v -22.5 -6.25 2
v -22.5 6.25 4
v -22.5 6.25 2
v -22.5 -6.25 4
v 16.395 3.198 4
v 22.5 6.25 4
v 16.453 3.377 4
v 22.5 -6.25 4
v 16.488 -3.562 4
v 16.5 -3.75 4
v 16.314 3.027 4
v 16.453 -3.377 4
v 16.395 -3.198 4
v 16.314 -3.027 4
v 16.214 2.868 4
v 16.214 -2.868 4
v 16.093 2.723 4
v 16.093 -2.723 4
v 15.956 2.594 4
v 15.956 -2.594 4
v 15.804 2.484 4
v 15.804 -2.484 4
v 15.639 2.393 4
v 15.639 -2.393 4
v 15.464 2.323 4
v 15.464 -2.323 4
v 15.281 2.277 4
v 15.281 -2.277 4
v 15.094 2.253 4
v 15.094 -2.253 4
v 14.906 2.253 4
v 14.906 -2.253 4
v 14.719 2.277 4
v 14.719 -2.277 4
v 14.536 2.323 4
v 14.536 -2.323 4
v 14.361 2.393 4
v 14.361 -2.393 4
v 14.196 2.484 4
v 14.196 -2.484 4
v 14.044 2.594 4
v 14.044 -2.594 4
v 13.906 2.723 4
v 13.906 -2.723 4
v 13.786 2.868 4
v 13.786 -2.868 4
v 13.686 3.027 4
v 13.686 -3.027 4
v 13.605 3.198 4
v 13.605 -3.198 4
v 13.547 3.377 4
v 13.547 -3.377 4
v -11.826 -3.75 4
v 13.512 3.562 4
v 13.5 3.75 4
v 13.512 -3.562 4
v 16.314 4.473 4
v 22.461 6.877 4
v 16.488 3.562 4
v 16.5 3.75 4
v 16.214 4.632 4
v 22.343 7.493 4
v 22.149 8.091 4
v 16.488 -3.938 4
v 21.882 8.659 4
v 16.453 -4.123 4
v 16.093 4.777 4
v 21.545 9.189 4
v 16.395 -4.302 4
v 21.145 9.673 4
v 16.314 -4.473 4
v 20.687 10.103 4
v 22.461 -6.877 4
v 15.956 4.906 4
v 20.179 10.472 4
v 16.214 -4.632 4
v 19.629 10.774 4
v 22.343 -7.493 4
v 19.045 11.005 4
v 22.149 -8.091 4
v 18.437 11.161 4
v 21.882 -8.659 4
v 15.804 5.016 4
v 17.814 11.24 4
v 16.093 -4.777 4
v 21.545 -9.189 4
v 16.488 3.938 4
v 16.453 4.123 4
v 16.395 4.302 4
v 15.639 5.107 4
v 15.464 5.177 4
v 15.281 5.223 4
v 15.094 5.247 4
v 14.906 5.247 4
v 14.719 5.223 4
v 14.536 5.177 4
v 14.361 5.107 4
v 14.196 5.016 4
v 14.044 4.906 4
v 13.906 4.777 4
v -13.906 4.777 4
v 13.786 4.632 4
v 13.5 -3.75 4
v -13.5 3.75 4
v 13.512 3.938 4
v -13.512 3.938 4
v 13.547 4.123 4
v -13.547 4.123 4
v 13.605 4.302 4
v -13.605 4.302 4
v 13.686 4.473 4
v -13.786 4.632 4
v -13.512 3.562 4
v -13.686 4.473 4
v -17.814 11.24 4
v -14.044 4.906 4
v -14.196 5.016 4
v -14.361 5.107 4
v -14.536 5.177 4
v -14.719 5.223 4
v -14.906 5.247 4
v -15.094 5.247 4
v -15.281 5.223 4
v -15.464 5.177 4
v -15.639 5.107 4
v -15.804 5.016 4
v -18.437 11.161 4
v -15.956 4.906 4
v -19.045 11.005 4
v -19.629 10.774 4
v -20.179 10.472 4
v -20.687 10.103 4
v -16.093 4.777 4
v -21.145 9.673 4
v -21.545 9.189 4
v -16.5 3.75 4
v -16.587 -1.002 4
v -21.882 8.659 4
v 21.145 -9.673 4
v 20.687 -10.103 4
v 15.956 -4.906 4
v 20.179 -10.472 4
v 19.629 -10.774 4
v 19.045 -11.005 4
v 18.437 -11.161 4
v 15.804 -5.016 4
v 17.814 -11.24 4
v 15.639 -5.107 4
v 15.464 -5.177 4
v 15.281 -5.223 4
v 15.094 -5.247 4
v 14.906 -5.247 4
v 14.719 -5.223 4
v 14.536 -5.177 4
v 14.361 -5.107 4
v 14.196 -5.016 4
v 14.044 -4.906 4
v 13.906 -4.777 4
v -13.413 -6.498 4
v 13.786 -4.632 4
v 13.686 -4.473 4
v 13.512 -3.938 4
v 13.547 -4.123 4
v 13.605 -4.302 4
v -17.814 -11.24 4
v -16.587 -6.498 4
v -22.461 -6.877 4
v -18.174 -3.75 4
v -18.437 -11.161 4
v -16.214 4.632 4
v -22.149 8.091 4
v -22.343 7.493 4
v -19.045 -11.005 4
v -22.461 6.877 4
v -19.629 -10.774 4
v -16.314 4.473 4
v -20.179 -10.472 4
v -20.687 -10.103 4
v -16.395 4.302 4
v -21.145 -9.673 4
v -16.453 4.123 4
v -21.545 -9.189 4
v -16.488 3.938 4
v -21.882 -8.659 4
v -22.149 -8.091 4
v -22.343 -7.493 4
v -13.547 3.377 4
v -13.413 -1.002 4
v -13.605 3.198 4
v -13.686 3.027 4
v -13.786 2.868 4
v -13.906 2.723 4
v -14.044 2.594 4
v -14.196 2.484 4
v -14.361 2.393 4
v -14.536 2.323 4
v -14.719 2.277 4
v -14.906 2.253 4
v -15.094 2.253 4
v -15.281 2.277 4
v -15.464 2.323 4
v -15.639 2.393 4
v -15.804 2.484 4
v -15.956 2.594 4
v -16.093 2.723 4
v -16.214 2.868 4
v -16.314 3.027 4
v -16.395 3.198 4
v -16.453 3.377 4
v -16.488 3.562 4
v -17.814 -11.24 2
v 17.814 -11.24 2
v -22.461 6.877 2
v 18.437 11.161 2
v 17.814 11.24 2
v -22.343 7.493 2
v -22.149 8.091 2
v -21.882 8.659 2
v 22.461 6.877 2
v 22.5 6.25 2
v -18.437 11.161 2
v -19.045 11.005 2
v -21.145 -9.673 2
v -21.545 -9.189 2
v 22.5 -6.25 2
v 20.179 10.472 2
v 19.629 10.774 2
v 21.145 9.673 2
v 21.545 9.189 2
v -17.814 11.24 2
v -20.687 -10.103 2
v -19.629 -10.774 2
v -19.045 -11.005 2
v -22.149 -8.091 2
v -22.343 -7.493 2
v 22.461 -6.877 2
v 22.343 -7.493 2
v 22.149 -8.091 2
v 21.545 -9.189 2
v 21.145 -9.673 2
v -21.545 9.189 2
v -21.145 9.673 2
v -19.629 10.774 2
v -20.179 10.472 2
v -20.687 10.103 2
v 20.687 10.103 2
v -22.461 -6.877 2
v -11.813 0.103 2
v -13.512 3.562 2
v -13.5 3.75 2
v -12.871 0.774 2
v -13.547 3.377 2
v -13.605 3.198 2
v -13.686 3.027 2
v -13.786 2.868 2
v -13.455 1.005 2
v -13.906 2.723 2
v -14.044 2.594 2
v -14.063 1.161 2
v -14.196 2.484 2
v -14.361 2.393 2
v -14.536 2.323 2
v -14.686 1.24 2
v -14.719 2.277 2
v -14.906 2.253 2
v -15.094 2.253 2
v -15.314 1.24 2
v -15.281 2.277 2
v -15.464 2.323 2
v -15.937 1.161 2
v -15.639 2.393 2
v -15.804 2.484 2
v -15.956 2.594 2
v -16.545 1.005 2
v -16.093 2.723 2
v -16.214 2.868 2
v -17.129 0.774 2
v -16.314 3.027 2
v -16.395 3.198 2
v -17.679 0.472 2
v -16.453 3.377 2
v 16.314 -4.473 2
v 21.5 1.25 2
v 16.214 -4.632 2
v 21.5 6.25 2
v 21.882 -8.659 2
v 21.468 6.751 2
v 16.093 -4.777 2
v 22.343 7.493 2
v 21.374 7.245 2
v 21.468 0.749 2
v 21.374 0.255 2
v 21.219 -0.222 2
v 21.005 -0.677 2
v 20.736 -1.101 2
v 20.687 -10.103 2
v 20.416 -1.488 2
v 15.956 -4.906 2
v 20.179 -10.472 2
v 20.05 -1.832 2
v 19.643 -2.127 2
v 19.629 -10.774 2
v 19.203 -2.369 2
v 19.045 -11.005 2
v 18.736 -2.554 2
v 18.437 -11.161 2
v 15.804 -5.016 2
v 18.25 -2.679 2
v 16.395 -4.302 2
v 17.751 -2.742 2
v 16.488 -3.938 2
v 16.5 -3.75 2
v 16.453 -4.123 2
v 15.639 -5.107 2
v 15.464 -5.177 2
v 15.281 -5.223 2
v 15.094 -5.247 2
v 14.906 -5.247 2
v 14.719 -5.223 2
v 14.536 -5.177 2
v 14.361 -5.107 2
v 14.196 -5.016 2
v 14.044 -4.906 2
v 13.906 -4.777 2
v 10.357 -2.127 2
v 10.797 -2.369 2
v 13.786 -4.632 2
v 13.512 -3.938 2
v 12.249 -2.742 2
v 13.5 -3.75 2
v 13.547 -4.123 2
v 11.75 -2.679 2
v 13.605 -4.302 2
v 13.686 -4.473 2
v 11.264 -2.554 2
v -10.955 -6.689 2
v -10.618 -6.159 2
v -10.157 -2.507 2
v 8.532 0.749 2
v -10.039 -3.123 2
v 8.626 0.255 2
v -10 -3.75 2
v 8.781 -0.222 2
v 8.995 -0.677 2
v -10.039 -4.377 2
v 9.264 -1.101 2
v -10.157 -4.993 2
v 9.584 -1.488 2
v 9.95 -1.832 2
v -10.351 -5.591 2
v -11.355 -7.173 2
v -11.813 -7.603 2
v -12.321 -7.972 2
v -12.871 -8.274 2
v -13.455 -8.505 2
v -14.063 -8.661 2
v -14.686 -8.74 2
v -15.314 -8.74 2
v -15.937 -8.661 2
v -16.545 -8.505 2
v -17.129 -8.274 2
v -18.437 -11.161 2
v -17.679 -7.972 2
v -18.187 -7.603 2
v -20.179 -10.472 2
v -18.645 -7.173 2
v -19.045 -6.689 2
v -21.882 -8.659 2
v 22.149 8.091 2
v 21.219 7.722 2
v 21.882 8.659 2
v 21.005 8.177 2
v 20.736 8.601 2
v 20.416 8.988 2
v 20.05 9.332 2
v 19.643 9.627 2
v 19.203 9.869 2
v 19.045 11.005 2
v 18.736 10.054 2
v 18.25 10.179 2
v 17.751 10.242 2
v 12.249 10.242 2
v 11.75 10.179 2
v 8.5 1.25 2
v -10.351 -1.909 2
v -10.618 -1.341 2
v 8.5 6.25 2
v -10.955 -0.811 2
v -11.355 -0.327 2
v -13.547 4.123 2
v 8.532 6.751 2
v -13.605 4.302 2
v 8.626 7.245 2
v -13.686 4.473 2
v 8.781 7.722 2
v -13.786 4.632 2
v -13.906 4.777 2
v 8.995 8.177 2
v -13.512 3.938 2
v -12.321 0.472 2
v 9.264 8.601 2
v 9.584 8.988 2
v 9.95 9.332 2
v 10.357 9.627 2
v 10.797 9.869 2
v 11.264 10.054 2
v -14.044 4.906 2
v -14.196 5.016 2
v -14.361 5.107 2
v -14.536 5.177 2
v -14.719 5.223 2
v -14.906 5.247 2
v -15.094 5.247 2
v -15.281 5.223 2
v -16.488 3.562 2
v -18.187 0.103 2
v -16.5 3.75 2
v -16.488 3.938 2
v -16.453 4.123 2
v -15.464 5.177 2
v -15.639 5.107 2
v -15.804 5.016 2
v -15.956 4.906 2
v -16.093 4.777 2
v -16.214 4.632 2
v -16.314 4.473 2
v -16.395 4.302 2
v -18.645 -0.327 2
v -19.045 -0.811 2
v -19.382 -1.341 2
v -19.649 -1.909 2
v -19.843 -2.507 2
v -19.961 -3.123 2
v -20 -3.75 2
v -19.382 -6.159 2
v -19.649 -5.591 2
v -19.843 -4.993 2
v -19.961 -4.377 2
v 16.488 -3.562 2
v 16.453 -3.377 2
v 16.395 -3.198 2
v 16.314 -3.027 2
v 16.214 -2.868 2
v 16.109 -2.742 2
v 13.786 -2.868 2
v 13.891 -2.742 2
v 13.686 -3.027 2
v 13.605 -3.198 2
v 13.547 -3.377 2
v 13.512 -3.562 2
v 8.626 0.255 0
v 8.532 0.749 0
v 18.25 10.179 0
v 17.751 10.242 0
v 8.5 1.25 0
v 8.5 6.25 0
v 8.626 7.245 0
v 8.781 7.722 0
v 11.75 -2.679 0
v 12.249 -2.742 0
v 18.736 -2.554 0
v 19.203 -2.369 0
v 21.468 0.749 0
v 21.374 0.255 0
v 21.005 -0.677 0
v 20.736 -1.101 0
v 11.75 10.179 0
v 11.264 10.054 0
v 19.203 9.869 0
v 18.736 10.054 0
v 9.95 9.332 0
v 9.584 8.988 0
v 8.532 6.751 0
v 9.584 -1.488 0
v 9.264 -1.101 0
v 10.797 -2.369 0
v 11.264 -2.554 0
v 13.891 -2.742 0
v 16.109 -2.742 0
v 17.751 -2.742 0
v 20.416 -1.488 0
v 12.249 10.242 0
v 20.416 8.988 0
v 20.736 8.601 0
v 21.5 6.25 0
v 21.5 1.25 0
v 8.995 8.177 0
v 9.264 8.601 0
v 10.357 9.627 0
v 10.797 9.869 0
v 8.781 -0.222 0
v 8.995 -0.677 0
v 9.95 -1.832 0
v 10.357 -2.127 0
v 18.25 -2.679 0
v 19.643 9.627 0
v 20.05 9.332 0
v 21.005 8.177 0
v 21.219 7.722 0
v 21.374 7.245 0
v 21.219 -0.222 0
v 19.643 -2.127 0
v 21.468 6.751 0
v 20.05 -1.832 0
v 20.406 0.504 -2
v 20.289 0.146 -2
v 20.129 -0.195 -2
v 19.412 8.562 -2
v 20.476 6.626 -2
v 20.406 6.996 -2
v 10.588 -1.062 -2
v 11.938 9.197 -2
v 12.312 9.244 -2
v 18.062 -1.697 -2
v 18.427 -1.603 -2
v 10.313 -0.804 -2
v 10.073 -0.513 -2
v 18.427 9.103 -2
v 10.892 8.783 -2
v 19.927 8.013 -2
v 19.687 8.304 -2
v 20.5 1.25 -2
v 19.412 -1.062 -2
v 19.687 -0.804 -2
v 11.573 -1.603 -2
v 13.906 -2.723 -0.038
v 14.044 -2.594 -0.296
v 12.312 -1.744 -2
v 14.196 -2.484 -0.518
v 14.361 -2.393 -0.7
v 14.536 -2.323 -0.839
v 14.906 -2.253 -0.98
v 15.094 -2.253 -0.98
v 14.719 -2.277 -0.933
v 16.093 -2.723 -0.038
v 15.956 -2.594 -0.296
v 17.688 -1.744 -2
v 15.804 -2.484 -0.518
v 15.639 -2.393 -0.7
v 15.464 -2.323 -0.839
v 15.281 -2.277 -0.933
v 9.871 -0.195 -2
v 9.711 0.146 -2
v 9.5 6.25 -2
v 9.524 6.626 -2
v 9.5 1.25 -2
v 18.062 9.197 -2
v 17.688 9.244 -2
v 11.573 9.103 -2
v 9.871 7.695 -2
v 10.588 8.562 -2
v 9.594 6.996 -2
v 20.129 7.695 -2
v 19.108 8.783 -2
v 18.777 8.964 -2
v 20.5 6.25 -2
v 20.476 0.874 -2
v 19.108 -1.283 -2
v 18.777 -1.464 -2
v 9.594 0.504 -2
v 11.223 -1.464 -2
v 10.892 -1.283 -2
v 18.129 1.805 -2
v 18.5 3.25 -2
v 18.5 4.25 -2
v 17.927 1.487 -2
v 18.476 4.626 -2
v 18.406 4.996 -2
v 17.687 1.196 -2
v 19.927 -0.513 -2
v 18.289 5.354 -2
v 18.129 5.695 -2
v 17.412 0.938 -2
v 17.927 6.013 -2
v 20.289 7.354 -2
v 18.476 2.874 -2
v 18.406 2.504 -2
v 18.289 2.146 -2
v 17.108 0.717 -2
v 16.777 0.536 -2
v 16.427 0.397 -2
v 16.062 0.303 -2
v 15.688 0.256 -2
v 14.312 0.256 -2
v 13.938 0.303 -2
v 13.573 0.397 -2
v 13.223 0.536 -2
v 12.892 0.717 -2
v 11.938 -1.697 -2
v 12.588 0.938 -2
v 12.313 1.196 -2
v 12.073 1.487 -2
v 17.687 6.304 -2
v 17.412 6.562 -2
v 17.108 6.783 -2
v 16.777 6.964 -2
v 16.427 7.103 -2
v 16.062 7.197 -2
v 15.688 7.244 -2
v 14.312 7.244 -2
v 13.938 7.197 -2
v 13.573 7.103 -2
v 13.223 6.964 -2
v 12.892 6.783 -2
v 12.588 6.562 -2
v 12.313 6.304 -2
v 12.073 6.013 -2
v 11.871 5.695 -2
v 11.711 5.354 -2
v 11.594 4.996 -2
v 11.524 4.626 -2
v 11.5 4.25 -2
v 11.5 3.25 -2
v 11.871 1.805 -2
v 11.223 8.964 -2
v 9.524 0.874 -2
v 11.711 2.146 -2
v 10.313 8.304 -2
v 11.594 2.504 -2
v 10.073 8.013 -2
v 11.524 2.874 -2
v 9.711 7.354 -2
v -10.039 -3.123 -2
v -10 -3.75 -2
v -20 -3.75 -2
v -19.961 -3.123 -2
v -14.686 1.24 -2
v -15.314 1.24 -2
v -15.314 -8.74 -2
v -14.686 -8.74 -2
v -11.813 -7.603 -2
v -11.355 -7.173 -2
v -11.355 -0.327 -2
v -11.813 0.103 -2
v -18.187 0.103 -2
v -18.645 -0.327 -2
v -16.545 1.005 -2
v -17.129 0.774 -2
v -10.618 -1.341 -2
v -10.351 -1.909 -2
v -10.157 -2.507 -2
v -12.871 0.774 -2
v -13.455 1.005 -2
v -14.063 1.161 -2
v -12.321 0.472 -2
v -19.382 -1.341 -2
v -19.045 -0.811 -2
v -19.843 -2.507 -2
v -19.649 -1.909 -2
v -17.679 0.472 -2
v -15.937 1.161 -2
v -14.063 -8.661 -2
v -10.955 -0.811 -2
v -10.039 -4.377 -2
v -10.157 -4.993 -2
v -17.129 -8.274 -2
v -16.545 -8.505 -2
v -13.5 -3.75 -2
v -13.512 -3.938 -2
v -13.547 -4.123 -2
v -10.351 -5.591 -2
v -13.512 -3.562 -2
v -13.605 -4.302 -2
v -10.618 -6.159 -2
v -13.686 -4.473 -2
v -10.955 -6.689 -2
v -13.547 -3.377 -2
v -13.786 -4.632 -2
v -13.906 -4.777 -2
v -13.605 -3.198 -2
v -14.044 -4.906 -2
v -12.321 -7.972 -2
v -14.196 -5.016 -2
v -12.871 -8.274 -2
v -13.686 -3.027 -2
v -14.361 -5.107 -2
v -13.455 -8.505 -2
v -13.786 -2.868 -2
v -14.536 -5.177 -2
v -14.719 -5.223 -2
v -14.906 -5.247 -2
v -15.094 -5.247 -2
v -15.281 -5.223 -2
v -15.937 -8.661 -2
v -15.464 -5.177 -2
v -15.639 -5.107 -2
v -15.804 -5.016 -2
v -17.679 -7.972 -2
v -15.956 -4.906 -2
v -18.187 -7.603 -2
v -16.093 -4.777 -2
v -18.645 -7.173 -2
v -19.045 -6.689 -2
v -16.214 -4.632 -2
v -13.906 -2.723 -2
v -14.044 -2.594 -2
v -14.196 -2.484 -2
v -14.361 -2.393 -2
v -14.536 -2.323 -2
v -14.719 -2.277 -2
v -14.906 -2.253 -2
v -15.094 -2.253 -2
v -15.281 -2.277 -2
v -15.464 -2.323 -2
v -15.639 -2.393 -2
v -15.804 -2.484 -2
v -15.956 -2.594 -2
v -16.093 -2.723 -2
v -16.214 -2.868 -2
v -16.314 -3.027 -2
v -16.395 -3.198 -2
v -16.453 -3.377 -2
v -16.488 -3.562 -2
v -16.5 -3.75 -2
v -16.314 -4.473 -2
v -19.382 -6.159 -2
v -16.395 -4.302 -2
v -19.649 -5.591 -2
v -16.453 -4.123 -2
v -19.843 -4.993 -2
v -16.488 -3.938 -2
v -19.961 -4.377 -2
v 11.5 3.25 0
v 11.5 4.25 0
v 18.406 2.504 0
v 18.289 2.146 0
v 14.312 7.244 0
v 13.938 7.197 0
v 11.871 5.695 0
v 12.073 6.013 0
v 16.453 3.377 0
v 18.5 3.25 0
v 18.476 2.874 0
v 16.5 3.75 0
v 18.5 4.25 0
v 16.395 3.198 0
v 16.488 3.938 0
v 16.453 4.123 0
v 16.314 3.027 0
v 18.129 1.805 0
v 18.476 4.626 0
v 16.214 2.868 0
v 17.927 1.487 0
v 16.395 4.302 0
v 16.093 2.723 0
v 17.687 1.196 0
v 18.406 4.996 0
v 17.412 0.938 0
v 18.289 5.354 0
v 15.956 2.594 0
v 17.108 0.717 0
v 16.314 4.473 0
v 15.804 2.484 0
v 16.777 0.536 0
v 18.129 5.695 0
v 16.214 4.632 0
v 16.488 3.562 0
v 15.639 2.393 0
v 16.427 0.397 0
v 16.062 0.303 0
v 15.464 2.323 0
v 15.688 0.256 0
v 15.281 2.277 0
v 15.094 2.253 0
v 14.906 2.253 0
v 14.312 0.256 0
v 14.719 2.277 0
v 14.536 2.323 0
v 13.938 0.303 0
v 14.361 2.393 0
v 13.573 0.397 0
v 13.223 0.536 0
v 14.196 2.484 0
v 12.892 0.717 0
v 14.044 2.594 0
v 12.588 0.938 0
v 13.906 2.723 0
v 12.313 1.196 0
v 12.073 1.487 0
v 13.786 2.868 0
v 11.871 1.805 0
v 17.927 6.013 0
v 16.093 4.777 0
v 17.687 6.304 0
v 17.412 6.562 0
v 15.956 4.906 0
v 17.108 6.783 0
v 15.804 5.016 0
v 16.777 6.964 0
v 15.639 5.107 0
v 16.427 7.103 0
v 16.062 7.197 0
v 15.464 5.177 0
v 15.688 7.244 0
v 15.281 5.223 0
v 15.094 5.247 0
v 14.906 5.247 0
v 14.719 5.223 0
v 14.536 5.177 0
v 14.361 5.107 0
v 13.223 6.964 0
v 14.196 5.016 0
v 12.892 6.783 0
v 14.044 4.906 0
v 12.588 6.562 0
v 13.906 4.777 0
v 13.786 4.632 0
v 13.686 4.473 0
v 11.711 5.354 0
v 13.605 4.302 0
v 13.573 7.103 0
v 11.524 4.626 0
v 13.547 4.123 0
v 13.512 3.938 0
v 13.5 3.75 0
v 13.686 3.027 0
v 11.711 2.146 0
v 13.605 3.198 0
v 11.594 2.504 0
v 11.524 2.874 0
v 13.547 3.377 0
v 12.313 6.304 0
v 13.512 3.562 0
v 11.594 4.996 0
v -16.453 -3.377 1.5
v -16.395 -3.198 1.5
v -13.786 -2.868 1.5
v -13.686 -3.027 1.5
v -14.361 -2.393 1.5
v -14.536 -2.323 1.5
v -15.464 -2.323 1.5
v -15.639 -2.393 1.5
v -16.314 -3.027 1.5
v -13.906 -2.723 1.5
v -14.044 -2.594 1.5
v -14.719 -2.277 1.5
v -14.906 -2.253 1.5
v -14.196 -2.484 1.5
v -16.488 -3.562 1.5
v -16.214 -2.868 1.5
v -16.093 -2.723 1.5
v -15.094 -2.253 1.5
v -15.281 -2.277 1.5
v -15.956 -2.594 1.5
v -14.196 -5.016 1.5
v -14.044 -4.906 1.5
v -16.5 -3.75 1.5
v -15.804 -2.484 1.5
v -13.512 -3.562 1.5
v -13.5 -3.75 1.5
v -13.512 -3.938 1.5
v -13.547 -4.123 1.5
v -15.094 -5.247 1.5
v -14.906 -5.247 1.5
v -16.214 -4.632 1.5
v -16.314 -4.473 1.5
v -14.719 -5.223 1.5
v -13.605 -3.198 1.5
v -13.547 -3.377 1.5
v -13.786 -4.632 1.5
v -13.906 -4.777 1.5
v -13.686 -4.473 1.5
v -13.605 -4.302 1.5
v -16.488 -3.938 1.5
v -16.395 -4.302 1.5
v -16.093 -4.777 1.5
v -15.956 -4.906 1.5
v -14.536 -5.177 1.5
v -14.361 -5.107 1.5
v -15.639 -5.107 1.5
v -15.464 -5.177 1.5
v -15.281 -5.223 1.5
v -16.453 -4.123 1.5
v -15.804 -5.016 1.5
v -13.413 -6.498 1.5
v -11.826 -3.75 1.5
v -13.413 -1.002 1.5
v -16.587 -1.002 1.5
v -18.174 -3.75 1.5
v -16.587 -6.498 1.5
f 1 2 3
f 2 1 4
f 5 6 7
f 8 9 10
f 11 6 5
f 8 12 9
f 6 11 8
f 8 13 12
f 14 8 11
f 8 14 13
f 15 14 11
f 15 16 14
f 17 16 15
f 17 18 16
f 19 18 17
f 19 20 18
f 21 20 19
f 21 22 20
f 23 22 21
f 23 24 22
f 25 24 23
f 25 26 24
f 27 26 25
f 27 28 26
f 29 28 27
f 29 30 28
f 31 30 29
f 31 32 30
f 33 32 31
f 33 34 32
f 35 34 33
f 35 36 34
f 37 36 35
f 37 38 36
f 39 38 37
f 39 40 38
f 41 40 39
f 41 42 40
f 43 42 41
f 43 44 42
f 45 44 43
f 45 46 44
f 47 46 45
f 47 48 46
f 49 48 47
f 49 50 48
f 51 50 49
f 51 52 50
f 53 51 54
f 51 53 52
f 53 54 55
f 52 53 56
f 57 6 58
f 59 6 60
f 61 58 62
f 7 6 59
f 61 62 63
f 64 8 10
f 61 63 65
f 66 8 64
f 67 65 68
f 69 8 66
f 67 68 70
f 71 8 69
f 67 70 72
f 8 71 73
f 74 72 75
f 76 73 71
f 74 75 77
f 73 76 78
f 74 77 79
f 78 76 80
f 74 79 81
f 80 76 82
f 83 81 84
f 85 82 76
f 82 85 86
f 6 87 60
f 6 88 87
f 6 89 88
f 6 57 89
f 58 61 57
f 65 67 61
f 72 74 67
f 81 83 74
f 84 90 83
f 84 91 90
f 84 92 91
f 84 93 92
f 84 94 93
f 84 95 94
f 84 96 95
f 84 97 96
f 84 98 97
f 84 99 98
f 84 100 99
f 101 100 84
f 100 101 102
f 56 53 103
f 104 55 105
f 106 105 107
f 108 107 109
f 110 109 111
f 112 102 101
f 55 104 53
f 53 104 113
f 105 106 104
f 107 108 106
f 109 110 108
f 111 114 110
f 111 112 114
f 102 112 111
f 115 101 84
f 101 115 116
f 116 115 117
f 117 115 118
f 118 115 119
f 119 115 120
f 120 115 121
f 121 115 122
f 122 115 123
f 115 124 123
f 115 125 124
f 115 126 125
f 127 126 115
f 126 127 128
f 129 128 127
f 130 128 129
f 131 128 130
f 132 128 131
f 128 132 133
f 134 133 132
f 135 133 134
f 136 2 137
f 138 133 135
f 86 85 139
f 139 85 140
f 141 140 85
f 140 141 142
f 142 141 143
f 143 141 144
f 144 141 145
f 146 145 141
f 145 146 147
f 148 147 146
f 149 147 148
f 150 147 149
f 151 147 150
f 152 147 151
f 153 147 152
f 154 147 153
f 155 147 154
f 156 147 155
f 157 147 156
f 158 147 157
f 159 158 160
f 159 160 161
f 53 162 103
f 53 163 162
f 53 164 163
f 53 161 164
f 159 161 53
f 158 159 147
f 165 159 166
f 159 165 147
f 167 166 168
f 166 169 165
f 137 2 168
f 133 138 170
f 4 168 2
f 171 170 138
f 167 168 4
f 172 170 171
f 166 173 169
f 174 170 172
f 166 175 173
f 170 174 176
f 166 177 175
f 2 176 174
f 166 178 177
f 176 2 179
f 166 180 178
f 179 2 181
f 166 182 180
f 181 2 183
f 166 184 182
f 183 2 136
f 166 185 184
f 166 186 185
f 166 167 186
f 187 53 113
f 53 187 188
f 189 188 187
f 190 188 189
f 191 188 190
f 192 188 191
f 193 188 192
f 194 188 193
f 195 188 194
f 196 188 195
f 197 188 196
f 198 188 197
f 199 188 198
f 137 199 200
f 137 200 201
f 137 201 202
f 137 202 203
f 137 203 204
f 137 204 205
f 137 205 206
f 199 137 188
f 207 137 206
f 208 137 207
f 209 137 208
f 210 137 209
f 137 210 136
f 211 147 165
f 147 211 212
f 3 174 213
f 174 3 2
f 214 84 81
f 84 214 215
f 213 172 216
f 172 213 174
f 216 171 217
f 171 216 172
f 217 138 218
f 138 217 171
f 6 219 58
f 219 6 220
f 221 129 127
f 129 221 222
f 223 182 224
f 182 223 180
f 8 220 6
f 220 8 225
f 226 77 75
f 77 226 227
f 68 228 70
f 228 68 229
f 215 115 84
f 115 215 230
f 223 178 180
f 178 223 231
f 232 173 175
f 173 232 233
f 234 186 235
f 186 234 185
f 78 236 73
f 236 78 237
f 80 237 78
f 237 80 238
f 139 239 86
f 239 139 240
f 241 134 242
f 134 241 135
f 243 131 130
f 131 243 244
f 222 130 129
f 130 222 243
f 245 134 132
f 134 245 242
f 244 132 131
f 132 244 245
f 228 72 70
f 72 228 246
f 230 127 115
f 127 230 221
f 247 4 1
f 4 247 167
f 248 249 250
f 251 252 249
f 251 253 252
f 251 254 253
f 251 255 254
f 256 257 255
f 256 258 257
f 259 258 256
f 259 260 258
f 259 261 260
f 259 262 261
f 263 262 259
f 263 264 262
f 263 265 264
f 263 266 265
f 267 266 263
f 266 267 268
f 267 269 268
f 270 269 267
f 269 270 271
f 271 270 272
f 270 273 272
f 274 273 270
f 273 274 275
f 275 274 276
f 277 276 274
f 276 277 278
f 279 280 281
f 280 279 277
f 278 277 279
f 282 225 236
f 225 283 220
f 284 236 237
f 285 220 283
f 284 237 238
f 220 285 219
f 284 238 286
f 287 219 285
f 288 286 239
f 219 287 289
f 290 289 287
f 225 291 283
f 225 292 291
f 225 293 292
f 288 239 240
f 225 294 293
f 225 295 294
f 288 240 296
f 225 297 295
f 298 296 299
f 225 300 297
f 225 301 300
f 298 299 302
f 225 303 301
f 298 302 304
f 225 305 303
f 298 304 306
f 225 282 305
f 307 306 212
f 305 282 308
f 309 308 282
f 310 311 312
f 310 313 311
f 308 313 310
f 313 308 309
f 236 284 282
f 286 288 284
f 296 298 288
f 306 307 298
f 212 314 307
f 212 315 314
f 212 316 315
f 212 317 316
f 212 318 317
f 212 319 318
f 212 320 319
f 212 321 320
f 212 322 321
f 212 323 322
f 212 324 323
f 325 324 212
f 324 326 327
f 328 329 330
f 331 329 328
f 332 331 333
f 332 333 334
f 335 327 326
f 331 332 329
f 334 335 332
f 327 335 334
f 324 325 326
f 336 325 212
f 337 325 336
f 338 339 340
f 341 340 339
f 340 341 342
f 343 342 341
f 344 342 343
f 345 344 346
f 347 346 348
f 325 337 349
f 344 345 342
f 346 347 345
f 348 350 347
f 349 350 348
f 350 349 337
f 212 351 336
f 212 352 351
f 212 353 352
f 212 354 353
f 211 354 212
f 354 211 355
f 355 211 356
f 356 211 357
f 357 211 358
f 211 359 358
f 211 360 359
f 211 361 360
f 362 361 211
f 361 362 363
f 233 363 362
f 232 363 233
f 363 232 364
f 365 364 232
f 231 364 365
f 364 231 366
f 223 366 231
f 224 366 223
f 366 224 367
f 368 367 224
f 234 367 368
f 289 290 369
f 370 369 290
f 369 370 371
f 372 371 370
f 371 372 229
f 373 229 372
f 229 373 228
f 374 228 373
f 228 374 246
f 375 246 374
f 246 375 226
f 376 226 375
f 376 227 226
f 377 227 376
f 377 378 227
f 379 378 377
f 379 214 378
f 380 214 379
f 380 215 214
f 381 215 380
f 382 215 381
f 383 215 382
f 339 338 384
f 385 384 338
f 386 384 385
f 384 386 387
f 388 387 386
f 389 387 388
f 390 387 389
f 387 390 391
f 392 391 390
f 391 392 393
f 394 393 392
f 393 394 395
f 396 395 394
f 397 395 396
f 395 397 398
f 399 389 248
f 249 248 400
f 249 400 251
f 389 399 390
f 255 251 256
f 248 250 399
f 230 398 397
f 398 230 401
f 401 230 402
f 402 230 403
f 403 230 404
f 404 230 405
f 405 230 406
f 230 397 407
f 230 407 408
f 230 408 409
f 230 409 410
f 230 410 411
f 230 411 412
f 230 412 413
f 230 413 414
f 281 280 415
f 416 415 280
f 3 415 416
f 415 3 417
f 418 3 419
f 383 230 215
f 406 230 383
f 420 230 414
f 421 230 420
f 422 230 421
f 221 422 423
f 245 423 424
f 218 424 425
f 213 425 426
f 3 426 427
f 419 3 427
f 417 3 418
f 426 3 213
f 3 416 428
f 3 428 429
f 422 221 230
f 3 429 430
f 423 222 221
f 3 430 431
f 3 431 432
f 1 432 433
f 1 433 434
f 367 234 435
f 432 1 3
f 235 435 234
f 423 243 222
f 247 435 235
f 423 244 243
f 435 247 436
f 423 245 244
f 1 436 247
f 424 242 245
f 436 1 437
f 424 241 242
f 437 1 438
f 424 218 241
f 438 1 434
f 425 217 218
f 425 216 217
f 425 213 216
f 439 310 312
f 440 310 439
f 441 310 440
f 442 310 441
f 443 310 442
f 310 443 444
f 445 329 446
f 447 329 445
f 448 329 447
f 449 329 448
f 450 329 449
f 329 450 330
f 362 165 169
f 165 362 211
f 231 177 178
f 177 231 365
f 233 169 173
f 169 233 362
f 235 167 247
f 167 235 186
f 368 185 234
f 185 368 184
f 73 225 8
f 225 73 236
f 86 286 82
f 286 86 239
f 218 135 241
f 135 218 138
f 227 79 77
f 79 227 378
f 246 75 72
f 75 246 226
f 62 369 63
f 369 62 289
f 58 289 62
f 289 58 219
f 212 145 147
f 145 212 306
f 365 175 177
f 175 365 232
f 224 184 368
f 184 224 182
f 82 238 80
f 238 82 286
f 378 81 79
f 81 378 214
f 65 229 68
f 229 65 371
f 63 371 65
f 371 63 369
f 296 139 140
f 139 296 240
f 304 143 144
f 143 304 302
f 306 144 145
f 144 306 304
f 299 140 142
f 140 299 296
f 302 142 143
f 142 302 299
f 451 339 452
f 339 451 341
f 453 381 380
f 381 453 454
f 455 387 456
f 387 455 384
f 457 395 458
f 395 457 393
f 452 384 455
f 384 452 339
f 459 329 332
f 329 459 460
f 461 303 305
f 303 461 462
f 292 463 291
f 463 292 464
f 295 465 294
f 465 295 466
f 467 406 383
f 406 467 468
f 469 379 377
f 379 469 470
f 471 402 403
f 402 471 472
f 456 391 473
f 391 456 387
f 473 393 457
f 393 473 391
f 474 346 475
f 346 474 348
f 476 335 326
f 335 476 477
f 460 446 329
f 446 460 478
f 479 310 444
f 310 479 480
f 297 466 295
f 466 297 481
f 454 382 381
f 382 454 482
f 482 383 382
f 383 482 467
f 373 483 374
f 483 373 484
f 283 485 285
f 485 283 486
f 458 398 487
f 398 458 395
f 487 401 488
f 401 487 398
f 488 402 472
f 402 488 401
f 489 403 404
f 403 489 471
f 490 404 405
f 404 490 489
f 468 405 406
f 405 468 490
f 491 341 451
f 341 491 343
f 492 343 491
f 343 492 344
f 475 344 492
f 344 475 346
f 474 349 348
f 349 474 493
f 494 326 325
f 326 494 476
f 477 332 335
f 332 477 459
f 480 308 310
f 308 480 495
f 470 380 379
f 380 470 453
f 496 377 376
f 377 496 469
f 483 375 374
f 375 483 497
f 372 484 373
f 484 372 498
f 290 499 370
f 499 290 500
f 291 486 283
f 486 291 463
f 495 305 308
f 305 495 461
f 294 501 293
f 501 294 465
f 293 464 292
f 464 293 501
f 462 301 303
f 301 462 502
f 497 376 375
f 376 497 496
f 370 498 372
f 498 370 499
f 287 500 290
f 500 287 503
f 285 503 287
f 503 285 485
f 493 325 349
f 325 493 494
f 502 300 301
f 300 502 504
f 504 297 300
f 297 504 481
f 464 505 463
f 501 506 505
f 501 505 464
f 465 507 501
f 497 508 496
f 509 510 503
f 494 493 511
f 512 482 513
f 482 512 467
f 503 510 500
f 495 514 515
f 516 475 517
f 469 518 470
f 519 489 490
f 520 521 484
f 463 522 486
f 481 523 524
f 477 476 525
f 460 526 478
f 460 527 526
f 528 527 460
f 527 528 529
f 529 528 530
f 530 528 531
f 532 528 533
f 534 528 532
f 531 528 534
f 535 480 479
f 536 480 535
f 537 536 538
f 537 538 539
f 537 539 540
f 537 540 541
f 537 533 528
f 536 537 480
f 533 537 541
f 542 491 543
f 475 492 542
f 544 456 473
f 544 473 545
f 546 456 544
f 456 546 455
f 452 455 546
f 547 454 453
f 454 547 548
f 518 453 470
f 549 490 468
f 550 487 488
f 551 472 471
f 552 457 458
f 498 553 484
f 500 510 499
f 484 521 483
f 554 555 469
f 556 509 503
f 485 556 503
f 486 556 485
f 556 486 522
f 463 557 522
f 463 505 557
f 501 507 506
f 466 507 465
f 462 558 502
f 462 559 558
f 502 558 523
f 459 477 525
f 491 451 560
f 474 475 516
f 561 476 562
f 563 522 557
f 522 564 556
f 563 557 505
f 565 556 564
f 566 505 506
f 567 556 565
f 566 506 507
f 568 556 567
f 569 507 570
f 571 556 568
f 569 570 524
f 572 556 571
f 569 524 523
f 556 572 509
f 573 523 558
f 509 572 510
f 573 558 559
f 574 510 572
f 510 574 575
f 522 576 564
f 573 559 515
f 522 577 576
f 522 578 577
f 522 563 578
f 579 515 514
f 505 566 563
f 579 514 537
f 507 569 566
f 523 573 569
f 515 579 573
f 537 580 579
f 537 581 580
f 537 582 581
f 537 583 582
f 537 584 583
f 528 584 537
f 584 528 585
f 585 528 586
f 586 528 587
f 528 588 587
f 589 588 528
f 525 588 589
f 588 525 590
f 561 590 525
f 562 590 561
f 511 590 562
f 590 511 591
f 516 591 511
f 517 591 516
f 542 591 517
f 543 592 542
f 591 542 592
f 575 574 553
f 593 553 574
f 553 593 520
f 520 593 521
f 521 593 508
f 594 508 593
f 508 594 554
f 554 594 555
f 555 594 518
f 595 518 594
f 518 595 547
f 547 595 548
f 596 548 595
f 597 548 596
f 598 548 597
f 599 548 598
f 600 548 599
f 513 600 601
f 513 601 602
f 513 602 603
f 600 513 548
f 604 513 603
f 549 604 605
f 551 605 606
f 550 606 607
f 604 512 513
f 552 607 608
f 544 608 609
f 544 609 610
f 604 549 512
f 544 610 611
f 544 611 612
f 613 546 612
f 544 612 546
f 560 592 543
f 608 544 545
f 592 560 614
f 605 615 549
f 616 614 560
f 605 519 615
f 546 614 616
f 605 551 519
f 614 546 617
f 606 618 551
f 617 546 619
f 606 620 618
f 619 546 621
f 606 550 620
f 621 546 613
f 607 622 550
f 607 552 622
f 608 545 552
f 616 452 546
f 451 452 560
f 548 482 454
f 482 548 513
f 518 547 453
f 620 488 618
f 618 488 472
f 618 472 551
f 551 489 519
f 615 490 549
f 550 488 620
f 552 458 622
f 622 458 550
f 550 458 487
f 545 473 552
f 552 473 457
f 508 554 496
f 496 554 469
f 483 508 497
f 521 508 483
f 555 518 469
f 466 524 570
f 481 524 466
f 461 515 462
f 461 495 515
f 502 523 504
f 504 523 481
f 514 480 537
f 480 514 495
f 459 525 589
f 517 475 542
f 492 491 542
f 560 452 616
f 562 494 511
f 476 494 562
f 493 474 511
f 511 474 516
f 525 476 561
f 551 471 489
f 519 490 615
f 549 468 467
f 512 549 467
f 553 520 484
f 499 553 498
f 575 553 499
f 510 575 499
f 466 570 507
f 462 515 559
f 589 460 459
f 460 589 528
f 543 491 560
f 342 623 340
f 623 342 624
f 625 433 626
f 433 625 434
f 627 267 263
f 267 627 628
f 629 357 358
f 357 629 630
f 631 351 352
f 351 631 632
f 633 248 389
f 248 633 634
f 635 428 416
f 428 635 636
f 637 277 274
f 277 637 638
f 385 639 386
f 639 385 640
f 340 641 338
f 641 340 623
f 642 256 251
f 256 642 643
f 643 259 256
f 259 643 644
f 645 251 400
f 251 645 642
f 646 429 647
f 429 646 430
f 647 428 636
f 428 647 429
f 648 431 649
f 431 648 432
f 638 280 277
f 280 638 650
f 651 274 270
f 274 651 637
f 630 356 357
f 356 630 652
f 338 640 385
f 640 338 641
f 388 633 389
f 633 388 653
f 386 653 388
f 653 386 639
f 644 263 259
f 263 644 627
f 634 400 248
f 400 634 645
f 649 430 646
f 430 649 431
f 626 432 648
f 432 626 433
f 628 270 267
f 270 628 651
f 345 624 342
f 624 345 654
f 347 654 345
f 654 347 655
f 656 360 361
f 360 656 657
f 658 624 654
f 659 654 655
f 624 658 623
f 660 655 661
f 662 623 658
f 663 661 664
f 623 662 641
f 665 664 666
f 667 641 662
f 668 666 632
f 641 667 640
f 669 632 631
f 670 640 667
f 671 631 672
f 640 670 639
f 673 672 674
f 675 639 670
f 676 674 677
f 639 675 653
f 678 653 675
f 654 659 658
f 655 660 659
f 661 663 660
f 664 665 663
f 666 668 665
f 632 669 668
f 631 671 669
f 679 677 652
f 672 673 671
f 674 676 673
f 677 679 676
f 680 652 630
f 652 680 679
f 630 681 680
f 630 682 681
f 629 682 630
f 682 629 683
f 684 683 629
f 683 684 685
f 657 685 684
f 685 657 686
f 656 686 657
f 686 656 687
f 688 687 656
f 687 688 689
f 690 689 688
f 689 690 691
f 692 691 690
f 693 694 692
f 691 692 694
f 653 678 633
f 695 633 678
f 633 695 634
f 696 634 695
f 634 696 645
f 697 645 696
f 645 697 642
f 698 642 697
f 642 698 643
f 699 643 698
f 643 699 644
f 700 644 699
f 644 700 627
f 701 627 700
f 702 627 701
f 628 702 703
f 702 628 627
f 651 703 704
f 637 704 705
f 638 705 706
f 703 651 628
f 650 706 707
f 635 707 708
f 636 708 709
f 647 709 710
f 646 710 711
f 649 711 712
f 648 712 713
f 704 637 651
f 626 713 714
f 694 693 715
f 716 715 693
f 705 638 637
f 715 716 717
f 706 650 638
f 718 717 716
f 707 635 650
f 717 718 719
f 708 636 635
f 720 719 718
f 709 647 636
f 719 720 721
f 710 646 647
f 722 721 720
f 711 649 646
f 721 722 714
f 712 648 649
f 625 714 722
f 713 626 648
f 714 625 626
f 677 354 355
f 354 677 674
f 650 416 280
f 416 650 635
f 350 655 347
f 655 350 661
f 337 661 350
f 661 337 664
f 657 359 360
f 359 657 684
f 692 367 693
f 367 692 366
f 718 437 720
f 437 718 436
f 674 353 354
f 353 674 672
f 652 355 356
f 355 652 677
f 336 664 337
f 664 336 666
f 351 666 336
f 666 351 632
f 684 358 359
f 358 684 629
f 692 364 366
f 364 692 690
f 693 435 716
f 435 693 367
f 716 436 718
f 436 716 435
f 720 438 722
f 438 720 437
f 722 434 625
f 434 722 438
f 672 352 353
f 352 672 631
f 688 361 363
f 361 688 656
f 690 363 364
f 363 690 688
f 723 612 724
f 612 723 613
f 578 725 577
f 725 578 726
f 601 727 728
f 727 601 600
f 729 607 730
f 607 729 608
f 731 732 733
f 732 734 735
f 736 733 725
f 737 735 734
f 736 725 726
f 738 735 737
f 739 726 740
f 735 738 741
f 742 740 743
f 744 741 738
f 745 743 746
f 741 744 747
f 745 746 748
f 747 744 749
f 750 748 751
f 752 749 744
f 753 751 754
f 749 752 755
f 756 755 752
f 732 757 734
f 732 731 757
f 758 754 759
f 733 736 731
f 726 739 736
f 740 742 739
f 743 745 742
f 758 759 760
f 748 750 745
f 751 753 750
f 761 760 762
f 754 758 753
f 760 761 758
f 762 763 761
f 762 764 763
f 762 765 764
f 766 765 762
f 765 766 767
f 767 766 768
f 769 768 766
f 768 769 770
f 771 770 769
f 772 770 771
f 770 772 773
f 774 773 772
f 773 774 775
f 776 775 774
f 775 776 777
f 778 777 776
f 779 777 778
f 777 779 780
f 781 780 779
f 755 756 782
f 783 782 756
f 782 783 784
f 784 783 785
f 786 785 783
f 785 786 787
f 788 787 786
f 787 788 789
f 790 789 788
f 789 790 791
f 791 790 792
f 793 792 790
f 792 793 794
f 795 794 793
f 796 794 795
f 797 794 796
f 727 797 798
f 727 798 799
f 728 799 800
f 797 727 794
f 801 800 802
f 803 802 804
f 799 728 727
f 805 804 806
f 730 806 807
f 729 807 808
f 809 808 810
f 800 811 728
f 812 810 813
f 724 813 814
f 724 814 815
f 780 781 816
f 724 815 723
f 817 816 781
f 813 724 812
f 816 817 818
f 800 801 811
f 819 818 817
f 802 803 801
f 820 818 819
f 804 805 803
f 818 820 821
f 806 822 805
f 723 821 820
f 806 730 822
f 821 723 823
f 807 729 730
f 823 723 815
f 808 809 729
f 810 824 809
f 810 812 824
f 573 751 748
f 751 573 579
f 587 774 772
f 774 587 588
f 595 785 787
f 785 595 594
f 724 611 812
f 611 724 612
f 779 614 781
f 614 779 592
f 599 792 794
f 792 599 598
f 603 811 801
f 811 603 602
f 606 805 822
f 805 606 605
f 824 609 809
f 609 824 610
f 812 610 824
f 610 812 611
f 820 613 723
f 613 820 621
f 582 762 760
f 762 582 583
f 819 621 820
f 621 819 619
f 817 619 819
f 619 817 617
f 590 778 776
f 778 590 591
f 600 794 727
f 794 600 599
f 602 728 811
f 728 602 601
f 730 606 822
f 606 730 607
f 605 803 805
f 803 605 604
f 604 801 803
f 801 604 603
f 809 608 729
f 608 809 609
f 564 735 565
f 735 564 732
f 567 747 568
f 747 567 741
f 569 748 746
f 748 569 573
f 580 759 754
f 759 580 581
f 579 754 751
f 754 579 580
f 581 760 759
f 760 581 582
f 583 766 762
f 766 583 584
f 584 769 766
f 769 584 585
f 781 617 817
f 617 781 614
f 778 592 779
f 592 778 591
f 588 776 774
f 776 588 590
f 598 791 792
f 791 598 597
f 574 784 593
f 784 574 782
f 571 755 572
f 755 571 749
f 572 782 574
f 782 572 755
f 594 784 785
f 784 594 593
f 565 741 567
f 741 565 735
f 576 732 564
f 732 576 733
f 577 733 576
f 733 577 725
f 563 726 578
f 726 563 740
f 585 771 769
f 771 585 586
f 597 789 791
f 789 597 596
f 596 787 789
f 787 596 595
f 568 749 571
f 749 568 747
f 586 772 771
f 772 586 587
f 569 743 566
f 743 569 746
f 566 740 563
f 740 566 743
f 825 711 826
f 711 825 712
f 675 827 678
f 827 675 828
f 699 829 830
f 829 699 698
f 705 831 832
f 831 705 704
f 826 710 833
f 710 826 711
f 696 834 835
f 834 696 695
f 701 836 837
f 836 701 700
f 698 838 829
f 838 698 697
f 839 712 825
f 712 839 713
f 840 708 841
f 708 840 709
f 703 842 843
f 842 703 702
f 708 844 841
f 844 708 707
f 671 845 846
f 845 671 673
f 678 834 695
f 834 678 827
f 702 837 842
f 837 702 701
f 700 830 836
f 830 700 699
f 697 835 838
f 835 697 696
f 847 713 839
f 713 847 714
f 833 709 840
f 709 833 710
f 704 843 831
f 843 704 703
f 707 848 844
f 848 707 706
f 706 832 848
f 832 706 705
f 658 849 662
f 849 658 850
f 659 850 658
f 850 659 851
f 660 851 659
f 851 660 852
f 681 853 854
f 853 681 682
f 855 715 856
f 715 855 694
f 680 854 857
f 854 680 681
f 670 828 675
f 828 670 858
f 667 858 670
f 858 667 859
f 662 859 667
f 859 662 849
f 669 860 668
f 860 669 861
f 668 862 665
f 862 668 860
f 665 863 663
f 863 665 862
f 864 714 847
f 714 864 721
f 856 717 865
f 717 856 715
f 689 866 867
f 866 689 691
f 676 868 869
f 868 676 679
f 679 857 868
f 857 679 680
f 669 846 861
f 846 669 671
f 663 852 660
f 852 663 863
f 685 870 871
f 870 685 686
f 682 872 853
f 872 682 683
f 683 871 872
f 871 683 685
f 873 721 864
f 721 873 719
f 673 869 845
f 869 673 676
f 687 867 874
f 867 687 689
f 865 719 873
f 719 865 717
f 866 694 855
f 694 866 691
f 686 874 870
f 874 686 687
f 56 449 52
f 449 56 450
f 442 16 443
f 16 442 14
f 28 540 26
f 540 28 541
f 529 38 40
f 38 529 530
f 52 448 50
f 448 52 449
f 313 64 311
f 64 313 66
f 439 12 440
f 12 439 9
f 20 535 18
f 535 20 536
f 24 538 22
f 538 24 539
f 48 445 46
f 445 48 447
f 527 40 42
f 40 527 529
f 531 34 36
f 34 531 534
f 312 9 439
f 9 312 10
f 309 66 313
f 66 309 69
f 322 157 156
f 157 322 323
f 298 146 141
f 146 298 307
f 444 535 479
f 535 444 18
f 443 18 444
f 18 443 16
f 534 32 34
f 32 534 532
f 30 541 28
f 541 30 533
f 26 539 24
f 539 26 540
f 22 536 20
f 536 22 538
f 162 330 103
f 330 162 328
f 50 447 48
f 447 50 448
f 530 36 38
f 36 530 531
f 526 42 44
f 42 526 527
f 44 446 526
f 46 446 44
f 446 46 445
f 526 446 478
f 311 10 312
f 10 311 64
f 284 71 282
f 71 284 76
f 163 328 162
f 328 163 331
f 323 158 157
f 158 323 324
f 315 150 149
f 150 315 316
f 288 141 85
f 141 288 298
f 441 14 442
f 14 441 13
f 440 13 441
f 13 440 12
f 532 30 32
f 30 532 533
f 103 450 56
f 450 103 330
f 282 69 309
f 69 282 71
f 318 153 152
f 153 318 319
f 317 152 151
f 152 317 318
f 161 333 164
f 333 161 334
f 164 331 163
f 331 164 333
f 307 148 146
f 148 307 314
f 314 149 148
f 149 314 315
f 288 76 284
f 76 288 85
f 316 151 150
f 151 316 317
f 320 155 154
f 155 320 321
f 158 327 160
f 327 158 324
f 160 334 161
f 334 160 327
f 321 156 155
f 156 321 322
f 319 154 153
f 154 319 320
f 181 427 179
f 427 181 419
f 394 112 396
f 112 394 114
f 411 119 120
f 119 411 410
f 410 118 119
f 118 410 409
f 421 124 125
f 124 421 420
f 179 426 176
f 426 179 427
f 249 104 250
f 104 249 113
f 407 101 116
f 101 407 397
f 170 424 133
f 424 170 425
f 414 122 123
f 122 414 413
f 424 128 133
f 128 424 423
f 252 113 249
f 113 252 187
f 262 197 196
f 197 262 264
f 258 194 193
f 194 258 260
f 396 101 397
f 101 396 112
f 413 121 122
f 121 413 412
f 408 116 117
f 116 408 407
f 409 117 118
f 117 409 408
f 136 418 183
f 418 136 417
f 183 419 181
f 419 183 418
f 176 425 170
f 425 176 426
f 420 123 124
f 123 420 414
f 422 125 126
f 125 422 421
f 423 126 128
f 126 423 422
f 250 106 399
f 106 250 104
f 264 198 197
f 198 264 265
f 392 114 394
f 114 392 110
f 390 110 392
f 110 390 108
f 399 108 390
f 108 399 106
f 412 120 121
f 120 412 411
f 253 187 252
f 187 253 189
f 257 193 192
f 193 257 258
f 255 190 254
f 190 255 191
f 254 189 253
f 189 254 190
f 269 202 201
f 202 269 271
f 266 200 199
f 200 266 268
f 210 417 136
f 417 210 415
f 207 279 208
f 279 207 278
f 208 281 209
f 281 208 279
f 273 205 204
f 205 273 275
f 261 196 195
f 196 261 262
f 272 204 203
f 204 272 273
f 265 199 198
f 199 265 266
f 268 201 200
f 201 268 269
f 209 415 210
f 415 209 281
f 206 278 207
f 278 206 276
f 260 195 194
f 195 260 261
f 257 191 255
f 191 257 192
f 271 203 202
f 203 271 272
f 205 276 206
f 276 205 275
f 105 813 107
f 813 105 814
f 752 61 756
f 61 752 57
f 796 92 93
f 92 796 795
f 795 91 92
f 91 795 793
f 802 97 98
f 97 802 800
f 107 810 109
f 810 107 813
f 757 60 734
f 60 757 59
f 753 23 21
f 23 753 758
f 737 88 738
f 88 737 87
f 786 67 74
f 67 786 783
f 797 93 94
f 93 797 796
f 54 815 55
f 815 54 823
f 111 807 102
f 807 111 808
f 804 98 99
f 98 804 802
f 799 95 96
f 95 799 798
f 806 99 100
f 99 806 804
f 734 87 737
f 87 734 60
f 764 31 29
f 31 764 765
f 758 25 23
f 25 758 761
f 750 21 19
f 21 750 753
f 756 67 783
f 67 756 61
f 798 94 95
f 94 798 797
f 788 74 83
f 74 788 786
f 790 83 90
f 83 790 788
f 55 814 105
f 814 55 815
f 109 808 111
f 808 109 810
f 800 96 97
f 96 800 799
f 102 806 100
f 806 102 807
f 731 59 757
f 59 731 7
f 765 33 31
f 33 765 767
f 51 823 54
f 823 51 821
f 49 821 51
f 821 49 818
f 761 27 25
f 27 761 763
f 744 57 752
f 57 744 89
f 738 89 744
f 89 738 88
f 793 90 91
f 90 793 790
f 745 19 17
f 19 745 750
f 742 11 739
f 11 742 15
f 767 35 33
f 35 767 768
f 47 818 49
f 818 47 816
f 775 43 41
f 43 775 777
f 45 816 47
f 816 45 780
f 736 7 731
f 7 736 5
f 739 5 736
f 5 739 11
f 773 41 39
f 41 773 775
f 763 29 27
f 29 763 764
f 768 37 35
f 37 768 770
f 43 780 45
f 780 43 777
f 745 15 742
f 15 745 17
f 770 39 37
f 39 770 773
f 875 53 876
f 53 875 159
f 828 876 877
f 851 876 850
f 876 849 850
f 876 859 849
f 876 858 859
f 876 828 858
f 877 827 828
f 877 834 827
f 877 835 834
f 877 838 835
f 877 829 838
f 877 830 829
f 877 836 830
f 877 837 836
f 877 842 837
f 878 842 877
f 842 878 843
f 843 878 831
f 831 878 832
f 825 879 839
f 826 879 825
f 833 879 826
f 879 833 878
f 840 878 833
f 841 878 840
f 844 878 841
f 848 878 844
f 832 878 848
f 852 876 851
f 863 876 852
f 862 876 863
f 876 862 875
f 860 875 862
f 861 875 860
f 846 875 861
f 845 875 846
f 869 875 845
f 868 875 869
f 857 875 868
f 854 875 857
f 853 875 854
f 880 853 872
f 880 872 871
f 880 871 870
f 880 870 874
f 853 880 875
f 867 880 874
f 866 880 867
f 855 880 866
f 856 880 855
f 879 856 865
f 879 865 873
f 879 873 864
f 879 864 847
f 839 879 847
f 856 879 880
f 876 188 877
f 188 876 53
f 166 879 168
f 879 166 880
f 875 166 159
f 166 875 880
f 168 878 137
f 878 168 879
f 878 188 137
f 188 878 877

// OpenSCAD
$fn = 50;


difference() {
	union() {
		translate(v = [0, 0, 2]) {
			rotate(a = [0, 0, 0]) {
				hull() {
					translate(v = [-17.5000000000, 6.2500000000, 0]) {
						rotate(a = [0, 0, 0]) {
							translate(v = [0, 0, 0]) {
								rotate(a = [0, 0, 0]) {
									cylinder(h = 2, r = 5);
								}
							}
						}
					}
					translate(v = [17.5000000000, 6.2500000000, 0]) {
						rotate(a = [0, 0, 0]) {
							translate(v = [0, 0, 0]) {
								rotate(a = [0, 0, 0]) {
									cylinder(h = 2, r = 5);
								}
							}
						}
					}
					translate(v = [-17.5000000000, -6.2500000000, 0]) {
						rotate(a = [0, 0, 0]) {
							translate(v = [0, 0, 0]) {
								rotate(a = [0, 0, 0]) {
									cylinder(h = 2, r = 5);
								}
							}
						}
					}
					translate(v = [17.5000000000, -6.2500000000, 0]) {
						rotate(a = [0, 0, 0]) {
							translate(v = [0, 0, 0]) {
								rotate(a = [0, 0, 0]) {
									cylinder(h = 2, r = 5);
								}
							}
						}
					}
				}
			}
		}
		translate(v = [15.0000000000, 3.7500000000, 0]) {
			rotate(a = [0, 0, 0]) {
				hull() {
					translate(v = [-2.5000000000, 2.5000000000, 0]) {
						rotate(a = [0, 0, 0]) {
							cylinder(h = 2, r1 = 4.0000000000, r2 = 4.0000000000);
						}
					}
					translate(v = [2.5000000000, 2.5000000000, 0]) {
						rotate(a = [0, 0, 0]) {
							cylinder(h = 2, r1 = 4.0000000000, r2 = 4.0000000000);
						}
					}
					translate(v = [-2.5000000000, -2.5000000000, 0]) {
						rotate(a = [0, 0, 0]) {
							cylinder(h = 2, r1 = 4.0000000000, r2 = 4.0000000000);
						}
					}
					translate(v = [2.5000000000, -2.5000000000, 0]) {
						rotate(a = [0, 0, 0]) {
							cylinder(h = 2, r1 = 4.0000000000, r2 = 4.0000000000);
						}
					}
				}
			}
		}
		translate(v = [15.0000000000, 3.7500000000, -2]) {
			rotate(a = [0, 180, 0]) {
				hull() {
					translate(v = [-2.5000000000, 2.5000000000, 0]) {
						rotate(a = [0, 180, 0]) {
							cylinder(h = 2, r1 = 3.0000000000, r2 = 4.0000000000);
						}
					}
					translate(v = [2.5000000000, 2.5000000000, 0]) {
						rotate(a = [0, 180, 0]) {
							cylinder(h = 2, r1 = 3.0000000000, r2 = 4.0000000000);
						}
					}
					translate(v = [-2.5000000000, -2.5000000000, 0]) {
						rotate(a = [0, 180, 0]) {
							cylinder(h = 2, r1 = 3.0000000000, r2 = 4.0000000000);
						}
					}
					translate(v = [2.5000000000, -2.5000000000, 0]) {
						rotate(a = [0, 180, 0]) {
							cylinder(h = 2, r1 = 3.0000000000, r2 = 4.0000000000);
						}
					}
				}
			}
		}
		translate(v = [-15.0000000000, -3.7500000000, -2.0000000000]) {
			rotate(a = [0, 0, 0]) {
				cylinder(h = 4, r = 5);
			}
		}
	}
	union() {
		translate(v = [15.0000000000, 3.7500000000, -2]) {
			rotate(a = [0, 0, 0]) {
				hull() {
					translate(v = [-0.5000000000, 0.5000000000, 0]) {
						rotate(a = [0, 0, 0]) {
							translate(v = [0, 0, 0]) {
								rotate(a = [0, 0, 0]) {
									cylinder(h = 2, r = 3.0000000000);
								}
							}
						}
					}
					translate(v = [0.5000000000, 0.5000000000, 0]) {
						rotate(a = [0, 0, 0]) {
							translate(v = [0, 0, 0]) {
								rotate(a = [0, 0, 0]) {
									cylinder(h = 2, r = 3.0000000000);
								}
							}
						}
					}
					translate(v = [-0.5000000000, -0.5000000000, 0]) {
						rotate(a = [0, 0, 0]) {
							translate(v = [0, 0, 0]) {
								rotate(a = [0, 0, 0]) {
									cylinder(h = 2, r = 3.0000000000);
								}
							}
						}
					}
					translate(v = [0.5000000000, -0.5000000000, 0]) {
						rotate(a = [0, 0, 0]) {
							translate(v = [0, 0, 0]) {
								rotate(a = [0, 0, 0]) {
									cylinder(h = 2, r = 3.0000000000);
								}
							}
						}
					}
				}
			}
		}
		translate(v = [-15.0000000000, -3.7500000000, -50]) {
			rotate(a = [0, 0, 0]) {
				cylinder(h = 100, r = 1.5000000000);
			}
		}
		translate(v = [15.0000000000, -3.7500000000, -50]) {
			rotate(a = [0, 0, 0]) {
				cylinder(h = 100, r = 1.5000000000);
			}
		}
		translate(v = [-15.0000000000, 3.7500000000, -50]) {
			rotate(a = [0, 0, 0]) {
				cylinder(h = 100, r = 1.5000000000);
			}
		}
		translate(v = [15.0000000000, 3.7500000000, -50]) {
			rotate(a = [0, 0, 0]) {
				cylinder(h = 100, r = 1.5000000000);
			}
		}
		translate(v = [-15.0000000000, -3.7500000000, 1.5000000000]) {
			rotate(a = [0, 0, 0]) {
				#translate(v = [0, 0, 0]) {
					rotate(a = [0, 0, 0]) {
						linear_extrude(height = 2.5000000000) {
							polygon(points = [[3.1735000000, 0.0000000000], [1.5867500000, 2.7483316189], [-1.5867500000, 2.7483316189], [-3.1735000000, 0.0000000000], [-1.5867500000, -2.7483316189], [1.5867500000, -2.7483316189]]);
						}
					}
				}
			}
		}
	}
}
